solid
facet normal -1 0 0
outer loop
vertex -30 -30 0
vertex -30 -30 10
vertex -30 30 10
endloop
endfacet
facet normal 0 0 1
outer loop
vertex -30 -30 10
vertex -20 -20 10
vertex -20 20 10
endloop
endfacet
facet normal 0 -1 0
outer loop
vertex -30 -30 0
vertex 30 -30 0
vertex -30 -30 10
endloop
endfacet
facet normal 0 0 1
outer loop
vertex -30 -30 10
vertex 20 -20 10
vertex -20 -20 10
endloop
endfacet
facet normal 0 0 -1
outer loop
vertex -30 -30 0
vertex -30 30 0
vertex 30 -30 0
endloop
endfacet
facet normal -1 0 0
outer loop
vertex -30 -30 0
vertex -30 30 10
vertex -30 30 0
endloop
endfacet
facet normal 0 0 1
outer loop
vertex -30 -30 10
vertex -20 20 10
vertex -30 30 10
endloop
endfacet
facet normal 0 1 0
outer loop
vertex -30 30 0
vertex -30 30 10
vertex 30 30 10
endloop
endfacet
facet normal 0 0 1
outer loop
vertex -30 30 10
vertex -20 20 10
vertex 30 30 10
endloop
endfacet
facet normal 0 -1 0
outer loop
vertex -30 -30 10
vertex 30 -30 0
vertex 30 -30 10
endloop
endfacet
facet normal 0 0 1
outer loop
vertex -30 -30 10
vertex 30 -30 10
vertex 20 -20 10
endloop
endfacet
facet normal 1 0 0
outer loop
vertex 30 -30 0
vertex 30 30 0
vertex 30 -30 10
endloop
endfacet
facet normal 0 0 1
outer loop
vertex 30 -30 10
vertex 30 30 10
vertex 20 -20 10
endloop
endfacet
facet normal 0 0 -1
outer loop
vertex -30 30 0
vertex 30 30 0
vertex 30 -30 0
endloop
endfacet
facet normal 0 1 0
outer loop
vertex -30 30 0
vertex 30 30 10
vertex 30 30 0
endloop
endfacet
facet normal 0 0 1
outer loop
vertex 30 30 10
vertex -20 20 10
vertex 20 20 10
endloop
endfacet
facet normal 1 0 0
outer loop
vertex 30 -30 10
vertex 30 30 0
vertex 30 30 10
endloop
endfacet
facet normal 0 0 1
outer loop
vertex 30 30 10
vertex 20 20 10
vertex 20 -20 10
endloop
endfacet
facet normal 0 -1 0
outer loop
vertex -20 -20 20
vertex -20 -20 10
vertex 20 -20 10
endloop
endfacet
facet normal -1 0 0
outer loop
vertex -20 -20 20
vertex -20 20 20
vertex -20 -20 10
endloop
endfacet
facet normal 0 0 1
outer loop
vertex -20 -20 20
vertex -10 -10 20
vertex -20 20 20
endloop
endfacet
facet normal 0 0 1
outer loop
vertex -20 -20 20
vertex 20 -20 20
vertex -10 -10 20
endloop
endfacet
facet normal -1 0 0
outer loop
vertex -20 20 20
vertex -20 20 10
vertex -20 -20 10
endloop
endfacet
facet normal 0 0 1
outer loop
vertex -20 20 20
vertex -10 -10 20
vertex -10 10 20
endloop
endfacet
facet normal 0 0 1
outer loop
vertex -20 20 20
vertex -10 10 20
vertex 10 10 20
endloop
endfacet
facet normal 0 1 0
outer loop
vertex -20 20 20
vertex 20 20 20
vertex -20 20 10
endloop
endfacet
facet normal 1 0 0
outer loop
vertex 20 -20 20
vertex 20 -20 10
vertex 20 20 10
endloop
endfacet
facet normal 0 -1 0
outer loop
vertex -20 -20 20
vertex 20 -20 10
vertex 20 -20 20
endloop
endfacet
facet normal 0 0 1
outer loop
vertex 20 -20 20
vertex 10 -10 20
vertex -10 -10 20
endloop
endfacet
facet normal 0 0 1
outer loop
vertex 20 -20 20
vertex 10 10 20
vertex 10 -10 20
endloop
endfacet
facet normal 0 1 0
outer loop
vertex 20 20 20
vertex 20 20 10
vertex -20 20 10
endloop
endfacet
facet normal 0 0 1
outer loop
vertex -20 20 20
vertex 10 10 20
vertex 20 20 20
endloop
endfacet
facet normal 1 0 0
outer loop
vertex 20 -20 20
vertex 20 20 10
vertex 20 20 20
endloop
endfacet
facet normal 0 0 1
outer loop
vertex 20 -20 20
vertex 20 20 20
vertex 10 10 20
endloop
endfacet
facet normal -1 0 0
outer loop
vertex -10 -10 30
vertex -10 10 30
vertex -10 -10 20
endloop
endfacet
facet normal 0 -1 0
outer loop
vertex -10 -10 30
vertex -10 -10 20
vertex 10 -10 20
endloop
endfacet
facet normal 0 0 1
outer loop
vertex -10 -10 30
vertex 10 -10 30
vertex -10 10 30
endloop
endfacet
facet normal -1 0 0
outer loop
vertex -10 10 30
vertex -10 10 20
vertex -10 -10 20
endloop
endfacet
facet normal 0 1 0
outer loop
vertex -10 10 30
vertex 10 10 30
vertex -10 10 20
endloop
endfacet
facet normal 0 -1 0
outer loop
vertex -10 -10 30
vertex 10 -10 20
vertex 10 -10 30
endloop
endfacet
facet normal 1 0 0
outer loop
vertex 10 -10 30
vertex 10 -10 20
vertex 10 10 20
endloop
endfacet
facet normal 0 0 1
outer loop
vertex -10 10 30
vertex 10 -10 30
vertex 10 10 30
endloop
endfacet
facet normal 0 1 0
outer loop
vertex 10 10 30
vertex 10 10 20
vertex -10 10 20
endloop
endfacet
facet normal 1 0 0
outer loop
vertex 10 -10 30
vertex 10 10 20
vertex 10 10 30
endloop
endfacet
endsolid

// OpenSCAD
// 3段の階段状ピラミッド
// 各段は中心を揃えて積み上げる

step(60, 10, 0);   // 1段目: 60 x 60 x 10
step(40, 10, 10);  // 2段目: 40 x 40 x 10
step(20, 10, 20);  // 3段目: 20 x 20 x 10

module step(size, height, z) {
    translate([0, 0, z])
        linear_extrude(height = height)
            square([size, size], center = true);
}
